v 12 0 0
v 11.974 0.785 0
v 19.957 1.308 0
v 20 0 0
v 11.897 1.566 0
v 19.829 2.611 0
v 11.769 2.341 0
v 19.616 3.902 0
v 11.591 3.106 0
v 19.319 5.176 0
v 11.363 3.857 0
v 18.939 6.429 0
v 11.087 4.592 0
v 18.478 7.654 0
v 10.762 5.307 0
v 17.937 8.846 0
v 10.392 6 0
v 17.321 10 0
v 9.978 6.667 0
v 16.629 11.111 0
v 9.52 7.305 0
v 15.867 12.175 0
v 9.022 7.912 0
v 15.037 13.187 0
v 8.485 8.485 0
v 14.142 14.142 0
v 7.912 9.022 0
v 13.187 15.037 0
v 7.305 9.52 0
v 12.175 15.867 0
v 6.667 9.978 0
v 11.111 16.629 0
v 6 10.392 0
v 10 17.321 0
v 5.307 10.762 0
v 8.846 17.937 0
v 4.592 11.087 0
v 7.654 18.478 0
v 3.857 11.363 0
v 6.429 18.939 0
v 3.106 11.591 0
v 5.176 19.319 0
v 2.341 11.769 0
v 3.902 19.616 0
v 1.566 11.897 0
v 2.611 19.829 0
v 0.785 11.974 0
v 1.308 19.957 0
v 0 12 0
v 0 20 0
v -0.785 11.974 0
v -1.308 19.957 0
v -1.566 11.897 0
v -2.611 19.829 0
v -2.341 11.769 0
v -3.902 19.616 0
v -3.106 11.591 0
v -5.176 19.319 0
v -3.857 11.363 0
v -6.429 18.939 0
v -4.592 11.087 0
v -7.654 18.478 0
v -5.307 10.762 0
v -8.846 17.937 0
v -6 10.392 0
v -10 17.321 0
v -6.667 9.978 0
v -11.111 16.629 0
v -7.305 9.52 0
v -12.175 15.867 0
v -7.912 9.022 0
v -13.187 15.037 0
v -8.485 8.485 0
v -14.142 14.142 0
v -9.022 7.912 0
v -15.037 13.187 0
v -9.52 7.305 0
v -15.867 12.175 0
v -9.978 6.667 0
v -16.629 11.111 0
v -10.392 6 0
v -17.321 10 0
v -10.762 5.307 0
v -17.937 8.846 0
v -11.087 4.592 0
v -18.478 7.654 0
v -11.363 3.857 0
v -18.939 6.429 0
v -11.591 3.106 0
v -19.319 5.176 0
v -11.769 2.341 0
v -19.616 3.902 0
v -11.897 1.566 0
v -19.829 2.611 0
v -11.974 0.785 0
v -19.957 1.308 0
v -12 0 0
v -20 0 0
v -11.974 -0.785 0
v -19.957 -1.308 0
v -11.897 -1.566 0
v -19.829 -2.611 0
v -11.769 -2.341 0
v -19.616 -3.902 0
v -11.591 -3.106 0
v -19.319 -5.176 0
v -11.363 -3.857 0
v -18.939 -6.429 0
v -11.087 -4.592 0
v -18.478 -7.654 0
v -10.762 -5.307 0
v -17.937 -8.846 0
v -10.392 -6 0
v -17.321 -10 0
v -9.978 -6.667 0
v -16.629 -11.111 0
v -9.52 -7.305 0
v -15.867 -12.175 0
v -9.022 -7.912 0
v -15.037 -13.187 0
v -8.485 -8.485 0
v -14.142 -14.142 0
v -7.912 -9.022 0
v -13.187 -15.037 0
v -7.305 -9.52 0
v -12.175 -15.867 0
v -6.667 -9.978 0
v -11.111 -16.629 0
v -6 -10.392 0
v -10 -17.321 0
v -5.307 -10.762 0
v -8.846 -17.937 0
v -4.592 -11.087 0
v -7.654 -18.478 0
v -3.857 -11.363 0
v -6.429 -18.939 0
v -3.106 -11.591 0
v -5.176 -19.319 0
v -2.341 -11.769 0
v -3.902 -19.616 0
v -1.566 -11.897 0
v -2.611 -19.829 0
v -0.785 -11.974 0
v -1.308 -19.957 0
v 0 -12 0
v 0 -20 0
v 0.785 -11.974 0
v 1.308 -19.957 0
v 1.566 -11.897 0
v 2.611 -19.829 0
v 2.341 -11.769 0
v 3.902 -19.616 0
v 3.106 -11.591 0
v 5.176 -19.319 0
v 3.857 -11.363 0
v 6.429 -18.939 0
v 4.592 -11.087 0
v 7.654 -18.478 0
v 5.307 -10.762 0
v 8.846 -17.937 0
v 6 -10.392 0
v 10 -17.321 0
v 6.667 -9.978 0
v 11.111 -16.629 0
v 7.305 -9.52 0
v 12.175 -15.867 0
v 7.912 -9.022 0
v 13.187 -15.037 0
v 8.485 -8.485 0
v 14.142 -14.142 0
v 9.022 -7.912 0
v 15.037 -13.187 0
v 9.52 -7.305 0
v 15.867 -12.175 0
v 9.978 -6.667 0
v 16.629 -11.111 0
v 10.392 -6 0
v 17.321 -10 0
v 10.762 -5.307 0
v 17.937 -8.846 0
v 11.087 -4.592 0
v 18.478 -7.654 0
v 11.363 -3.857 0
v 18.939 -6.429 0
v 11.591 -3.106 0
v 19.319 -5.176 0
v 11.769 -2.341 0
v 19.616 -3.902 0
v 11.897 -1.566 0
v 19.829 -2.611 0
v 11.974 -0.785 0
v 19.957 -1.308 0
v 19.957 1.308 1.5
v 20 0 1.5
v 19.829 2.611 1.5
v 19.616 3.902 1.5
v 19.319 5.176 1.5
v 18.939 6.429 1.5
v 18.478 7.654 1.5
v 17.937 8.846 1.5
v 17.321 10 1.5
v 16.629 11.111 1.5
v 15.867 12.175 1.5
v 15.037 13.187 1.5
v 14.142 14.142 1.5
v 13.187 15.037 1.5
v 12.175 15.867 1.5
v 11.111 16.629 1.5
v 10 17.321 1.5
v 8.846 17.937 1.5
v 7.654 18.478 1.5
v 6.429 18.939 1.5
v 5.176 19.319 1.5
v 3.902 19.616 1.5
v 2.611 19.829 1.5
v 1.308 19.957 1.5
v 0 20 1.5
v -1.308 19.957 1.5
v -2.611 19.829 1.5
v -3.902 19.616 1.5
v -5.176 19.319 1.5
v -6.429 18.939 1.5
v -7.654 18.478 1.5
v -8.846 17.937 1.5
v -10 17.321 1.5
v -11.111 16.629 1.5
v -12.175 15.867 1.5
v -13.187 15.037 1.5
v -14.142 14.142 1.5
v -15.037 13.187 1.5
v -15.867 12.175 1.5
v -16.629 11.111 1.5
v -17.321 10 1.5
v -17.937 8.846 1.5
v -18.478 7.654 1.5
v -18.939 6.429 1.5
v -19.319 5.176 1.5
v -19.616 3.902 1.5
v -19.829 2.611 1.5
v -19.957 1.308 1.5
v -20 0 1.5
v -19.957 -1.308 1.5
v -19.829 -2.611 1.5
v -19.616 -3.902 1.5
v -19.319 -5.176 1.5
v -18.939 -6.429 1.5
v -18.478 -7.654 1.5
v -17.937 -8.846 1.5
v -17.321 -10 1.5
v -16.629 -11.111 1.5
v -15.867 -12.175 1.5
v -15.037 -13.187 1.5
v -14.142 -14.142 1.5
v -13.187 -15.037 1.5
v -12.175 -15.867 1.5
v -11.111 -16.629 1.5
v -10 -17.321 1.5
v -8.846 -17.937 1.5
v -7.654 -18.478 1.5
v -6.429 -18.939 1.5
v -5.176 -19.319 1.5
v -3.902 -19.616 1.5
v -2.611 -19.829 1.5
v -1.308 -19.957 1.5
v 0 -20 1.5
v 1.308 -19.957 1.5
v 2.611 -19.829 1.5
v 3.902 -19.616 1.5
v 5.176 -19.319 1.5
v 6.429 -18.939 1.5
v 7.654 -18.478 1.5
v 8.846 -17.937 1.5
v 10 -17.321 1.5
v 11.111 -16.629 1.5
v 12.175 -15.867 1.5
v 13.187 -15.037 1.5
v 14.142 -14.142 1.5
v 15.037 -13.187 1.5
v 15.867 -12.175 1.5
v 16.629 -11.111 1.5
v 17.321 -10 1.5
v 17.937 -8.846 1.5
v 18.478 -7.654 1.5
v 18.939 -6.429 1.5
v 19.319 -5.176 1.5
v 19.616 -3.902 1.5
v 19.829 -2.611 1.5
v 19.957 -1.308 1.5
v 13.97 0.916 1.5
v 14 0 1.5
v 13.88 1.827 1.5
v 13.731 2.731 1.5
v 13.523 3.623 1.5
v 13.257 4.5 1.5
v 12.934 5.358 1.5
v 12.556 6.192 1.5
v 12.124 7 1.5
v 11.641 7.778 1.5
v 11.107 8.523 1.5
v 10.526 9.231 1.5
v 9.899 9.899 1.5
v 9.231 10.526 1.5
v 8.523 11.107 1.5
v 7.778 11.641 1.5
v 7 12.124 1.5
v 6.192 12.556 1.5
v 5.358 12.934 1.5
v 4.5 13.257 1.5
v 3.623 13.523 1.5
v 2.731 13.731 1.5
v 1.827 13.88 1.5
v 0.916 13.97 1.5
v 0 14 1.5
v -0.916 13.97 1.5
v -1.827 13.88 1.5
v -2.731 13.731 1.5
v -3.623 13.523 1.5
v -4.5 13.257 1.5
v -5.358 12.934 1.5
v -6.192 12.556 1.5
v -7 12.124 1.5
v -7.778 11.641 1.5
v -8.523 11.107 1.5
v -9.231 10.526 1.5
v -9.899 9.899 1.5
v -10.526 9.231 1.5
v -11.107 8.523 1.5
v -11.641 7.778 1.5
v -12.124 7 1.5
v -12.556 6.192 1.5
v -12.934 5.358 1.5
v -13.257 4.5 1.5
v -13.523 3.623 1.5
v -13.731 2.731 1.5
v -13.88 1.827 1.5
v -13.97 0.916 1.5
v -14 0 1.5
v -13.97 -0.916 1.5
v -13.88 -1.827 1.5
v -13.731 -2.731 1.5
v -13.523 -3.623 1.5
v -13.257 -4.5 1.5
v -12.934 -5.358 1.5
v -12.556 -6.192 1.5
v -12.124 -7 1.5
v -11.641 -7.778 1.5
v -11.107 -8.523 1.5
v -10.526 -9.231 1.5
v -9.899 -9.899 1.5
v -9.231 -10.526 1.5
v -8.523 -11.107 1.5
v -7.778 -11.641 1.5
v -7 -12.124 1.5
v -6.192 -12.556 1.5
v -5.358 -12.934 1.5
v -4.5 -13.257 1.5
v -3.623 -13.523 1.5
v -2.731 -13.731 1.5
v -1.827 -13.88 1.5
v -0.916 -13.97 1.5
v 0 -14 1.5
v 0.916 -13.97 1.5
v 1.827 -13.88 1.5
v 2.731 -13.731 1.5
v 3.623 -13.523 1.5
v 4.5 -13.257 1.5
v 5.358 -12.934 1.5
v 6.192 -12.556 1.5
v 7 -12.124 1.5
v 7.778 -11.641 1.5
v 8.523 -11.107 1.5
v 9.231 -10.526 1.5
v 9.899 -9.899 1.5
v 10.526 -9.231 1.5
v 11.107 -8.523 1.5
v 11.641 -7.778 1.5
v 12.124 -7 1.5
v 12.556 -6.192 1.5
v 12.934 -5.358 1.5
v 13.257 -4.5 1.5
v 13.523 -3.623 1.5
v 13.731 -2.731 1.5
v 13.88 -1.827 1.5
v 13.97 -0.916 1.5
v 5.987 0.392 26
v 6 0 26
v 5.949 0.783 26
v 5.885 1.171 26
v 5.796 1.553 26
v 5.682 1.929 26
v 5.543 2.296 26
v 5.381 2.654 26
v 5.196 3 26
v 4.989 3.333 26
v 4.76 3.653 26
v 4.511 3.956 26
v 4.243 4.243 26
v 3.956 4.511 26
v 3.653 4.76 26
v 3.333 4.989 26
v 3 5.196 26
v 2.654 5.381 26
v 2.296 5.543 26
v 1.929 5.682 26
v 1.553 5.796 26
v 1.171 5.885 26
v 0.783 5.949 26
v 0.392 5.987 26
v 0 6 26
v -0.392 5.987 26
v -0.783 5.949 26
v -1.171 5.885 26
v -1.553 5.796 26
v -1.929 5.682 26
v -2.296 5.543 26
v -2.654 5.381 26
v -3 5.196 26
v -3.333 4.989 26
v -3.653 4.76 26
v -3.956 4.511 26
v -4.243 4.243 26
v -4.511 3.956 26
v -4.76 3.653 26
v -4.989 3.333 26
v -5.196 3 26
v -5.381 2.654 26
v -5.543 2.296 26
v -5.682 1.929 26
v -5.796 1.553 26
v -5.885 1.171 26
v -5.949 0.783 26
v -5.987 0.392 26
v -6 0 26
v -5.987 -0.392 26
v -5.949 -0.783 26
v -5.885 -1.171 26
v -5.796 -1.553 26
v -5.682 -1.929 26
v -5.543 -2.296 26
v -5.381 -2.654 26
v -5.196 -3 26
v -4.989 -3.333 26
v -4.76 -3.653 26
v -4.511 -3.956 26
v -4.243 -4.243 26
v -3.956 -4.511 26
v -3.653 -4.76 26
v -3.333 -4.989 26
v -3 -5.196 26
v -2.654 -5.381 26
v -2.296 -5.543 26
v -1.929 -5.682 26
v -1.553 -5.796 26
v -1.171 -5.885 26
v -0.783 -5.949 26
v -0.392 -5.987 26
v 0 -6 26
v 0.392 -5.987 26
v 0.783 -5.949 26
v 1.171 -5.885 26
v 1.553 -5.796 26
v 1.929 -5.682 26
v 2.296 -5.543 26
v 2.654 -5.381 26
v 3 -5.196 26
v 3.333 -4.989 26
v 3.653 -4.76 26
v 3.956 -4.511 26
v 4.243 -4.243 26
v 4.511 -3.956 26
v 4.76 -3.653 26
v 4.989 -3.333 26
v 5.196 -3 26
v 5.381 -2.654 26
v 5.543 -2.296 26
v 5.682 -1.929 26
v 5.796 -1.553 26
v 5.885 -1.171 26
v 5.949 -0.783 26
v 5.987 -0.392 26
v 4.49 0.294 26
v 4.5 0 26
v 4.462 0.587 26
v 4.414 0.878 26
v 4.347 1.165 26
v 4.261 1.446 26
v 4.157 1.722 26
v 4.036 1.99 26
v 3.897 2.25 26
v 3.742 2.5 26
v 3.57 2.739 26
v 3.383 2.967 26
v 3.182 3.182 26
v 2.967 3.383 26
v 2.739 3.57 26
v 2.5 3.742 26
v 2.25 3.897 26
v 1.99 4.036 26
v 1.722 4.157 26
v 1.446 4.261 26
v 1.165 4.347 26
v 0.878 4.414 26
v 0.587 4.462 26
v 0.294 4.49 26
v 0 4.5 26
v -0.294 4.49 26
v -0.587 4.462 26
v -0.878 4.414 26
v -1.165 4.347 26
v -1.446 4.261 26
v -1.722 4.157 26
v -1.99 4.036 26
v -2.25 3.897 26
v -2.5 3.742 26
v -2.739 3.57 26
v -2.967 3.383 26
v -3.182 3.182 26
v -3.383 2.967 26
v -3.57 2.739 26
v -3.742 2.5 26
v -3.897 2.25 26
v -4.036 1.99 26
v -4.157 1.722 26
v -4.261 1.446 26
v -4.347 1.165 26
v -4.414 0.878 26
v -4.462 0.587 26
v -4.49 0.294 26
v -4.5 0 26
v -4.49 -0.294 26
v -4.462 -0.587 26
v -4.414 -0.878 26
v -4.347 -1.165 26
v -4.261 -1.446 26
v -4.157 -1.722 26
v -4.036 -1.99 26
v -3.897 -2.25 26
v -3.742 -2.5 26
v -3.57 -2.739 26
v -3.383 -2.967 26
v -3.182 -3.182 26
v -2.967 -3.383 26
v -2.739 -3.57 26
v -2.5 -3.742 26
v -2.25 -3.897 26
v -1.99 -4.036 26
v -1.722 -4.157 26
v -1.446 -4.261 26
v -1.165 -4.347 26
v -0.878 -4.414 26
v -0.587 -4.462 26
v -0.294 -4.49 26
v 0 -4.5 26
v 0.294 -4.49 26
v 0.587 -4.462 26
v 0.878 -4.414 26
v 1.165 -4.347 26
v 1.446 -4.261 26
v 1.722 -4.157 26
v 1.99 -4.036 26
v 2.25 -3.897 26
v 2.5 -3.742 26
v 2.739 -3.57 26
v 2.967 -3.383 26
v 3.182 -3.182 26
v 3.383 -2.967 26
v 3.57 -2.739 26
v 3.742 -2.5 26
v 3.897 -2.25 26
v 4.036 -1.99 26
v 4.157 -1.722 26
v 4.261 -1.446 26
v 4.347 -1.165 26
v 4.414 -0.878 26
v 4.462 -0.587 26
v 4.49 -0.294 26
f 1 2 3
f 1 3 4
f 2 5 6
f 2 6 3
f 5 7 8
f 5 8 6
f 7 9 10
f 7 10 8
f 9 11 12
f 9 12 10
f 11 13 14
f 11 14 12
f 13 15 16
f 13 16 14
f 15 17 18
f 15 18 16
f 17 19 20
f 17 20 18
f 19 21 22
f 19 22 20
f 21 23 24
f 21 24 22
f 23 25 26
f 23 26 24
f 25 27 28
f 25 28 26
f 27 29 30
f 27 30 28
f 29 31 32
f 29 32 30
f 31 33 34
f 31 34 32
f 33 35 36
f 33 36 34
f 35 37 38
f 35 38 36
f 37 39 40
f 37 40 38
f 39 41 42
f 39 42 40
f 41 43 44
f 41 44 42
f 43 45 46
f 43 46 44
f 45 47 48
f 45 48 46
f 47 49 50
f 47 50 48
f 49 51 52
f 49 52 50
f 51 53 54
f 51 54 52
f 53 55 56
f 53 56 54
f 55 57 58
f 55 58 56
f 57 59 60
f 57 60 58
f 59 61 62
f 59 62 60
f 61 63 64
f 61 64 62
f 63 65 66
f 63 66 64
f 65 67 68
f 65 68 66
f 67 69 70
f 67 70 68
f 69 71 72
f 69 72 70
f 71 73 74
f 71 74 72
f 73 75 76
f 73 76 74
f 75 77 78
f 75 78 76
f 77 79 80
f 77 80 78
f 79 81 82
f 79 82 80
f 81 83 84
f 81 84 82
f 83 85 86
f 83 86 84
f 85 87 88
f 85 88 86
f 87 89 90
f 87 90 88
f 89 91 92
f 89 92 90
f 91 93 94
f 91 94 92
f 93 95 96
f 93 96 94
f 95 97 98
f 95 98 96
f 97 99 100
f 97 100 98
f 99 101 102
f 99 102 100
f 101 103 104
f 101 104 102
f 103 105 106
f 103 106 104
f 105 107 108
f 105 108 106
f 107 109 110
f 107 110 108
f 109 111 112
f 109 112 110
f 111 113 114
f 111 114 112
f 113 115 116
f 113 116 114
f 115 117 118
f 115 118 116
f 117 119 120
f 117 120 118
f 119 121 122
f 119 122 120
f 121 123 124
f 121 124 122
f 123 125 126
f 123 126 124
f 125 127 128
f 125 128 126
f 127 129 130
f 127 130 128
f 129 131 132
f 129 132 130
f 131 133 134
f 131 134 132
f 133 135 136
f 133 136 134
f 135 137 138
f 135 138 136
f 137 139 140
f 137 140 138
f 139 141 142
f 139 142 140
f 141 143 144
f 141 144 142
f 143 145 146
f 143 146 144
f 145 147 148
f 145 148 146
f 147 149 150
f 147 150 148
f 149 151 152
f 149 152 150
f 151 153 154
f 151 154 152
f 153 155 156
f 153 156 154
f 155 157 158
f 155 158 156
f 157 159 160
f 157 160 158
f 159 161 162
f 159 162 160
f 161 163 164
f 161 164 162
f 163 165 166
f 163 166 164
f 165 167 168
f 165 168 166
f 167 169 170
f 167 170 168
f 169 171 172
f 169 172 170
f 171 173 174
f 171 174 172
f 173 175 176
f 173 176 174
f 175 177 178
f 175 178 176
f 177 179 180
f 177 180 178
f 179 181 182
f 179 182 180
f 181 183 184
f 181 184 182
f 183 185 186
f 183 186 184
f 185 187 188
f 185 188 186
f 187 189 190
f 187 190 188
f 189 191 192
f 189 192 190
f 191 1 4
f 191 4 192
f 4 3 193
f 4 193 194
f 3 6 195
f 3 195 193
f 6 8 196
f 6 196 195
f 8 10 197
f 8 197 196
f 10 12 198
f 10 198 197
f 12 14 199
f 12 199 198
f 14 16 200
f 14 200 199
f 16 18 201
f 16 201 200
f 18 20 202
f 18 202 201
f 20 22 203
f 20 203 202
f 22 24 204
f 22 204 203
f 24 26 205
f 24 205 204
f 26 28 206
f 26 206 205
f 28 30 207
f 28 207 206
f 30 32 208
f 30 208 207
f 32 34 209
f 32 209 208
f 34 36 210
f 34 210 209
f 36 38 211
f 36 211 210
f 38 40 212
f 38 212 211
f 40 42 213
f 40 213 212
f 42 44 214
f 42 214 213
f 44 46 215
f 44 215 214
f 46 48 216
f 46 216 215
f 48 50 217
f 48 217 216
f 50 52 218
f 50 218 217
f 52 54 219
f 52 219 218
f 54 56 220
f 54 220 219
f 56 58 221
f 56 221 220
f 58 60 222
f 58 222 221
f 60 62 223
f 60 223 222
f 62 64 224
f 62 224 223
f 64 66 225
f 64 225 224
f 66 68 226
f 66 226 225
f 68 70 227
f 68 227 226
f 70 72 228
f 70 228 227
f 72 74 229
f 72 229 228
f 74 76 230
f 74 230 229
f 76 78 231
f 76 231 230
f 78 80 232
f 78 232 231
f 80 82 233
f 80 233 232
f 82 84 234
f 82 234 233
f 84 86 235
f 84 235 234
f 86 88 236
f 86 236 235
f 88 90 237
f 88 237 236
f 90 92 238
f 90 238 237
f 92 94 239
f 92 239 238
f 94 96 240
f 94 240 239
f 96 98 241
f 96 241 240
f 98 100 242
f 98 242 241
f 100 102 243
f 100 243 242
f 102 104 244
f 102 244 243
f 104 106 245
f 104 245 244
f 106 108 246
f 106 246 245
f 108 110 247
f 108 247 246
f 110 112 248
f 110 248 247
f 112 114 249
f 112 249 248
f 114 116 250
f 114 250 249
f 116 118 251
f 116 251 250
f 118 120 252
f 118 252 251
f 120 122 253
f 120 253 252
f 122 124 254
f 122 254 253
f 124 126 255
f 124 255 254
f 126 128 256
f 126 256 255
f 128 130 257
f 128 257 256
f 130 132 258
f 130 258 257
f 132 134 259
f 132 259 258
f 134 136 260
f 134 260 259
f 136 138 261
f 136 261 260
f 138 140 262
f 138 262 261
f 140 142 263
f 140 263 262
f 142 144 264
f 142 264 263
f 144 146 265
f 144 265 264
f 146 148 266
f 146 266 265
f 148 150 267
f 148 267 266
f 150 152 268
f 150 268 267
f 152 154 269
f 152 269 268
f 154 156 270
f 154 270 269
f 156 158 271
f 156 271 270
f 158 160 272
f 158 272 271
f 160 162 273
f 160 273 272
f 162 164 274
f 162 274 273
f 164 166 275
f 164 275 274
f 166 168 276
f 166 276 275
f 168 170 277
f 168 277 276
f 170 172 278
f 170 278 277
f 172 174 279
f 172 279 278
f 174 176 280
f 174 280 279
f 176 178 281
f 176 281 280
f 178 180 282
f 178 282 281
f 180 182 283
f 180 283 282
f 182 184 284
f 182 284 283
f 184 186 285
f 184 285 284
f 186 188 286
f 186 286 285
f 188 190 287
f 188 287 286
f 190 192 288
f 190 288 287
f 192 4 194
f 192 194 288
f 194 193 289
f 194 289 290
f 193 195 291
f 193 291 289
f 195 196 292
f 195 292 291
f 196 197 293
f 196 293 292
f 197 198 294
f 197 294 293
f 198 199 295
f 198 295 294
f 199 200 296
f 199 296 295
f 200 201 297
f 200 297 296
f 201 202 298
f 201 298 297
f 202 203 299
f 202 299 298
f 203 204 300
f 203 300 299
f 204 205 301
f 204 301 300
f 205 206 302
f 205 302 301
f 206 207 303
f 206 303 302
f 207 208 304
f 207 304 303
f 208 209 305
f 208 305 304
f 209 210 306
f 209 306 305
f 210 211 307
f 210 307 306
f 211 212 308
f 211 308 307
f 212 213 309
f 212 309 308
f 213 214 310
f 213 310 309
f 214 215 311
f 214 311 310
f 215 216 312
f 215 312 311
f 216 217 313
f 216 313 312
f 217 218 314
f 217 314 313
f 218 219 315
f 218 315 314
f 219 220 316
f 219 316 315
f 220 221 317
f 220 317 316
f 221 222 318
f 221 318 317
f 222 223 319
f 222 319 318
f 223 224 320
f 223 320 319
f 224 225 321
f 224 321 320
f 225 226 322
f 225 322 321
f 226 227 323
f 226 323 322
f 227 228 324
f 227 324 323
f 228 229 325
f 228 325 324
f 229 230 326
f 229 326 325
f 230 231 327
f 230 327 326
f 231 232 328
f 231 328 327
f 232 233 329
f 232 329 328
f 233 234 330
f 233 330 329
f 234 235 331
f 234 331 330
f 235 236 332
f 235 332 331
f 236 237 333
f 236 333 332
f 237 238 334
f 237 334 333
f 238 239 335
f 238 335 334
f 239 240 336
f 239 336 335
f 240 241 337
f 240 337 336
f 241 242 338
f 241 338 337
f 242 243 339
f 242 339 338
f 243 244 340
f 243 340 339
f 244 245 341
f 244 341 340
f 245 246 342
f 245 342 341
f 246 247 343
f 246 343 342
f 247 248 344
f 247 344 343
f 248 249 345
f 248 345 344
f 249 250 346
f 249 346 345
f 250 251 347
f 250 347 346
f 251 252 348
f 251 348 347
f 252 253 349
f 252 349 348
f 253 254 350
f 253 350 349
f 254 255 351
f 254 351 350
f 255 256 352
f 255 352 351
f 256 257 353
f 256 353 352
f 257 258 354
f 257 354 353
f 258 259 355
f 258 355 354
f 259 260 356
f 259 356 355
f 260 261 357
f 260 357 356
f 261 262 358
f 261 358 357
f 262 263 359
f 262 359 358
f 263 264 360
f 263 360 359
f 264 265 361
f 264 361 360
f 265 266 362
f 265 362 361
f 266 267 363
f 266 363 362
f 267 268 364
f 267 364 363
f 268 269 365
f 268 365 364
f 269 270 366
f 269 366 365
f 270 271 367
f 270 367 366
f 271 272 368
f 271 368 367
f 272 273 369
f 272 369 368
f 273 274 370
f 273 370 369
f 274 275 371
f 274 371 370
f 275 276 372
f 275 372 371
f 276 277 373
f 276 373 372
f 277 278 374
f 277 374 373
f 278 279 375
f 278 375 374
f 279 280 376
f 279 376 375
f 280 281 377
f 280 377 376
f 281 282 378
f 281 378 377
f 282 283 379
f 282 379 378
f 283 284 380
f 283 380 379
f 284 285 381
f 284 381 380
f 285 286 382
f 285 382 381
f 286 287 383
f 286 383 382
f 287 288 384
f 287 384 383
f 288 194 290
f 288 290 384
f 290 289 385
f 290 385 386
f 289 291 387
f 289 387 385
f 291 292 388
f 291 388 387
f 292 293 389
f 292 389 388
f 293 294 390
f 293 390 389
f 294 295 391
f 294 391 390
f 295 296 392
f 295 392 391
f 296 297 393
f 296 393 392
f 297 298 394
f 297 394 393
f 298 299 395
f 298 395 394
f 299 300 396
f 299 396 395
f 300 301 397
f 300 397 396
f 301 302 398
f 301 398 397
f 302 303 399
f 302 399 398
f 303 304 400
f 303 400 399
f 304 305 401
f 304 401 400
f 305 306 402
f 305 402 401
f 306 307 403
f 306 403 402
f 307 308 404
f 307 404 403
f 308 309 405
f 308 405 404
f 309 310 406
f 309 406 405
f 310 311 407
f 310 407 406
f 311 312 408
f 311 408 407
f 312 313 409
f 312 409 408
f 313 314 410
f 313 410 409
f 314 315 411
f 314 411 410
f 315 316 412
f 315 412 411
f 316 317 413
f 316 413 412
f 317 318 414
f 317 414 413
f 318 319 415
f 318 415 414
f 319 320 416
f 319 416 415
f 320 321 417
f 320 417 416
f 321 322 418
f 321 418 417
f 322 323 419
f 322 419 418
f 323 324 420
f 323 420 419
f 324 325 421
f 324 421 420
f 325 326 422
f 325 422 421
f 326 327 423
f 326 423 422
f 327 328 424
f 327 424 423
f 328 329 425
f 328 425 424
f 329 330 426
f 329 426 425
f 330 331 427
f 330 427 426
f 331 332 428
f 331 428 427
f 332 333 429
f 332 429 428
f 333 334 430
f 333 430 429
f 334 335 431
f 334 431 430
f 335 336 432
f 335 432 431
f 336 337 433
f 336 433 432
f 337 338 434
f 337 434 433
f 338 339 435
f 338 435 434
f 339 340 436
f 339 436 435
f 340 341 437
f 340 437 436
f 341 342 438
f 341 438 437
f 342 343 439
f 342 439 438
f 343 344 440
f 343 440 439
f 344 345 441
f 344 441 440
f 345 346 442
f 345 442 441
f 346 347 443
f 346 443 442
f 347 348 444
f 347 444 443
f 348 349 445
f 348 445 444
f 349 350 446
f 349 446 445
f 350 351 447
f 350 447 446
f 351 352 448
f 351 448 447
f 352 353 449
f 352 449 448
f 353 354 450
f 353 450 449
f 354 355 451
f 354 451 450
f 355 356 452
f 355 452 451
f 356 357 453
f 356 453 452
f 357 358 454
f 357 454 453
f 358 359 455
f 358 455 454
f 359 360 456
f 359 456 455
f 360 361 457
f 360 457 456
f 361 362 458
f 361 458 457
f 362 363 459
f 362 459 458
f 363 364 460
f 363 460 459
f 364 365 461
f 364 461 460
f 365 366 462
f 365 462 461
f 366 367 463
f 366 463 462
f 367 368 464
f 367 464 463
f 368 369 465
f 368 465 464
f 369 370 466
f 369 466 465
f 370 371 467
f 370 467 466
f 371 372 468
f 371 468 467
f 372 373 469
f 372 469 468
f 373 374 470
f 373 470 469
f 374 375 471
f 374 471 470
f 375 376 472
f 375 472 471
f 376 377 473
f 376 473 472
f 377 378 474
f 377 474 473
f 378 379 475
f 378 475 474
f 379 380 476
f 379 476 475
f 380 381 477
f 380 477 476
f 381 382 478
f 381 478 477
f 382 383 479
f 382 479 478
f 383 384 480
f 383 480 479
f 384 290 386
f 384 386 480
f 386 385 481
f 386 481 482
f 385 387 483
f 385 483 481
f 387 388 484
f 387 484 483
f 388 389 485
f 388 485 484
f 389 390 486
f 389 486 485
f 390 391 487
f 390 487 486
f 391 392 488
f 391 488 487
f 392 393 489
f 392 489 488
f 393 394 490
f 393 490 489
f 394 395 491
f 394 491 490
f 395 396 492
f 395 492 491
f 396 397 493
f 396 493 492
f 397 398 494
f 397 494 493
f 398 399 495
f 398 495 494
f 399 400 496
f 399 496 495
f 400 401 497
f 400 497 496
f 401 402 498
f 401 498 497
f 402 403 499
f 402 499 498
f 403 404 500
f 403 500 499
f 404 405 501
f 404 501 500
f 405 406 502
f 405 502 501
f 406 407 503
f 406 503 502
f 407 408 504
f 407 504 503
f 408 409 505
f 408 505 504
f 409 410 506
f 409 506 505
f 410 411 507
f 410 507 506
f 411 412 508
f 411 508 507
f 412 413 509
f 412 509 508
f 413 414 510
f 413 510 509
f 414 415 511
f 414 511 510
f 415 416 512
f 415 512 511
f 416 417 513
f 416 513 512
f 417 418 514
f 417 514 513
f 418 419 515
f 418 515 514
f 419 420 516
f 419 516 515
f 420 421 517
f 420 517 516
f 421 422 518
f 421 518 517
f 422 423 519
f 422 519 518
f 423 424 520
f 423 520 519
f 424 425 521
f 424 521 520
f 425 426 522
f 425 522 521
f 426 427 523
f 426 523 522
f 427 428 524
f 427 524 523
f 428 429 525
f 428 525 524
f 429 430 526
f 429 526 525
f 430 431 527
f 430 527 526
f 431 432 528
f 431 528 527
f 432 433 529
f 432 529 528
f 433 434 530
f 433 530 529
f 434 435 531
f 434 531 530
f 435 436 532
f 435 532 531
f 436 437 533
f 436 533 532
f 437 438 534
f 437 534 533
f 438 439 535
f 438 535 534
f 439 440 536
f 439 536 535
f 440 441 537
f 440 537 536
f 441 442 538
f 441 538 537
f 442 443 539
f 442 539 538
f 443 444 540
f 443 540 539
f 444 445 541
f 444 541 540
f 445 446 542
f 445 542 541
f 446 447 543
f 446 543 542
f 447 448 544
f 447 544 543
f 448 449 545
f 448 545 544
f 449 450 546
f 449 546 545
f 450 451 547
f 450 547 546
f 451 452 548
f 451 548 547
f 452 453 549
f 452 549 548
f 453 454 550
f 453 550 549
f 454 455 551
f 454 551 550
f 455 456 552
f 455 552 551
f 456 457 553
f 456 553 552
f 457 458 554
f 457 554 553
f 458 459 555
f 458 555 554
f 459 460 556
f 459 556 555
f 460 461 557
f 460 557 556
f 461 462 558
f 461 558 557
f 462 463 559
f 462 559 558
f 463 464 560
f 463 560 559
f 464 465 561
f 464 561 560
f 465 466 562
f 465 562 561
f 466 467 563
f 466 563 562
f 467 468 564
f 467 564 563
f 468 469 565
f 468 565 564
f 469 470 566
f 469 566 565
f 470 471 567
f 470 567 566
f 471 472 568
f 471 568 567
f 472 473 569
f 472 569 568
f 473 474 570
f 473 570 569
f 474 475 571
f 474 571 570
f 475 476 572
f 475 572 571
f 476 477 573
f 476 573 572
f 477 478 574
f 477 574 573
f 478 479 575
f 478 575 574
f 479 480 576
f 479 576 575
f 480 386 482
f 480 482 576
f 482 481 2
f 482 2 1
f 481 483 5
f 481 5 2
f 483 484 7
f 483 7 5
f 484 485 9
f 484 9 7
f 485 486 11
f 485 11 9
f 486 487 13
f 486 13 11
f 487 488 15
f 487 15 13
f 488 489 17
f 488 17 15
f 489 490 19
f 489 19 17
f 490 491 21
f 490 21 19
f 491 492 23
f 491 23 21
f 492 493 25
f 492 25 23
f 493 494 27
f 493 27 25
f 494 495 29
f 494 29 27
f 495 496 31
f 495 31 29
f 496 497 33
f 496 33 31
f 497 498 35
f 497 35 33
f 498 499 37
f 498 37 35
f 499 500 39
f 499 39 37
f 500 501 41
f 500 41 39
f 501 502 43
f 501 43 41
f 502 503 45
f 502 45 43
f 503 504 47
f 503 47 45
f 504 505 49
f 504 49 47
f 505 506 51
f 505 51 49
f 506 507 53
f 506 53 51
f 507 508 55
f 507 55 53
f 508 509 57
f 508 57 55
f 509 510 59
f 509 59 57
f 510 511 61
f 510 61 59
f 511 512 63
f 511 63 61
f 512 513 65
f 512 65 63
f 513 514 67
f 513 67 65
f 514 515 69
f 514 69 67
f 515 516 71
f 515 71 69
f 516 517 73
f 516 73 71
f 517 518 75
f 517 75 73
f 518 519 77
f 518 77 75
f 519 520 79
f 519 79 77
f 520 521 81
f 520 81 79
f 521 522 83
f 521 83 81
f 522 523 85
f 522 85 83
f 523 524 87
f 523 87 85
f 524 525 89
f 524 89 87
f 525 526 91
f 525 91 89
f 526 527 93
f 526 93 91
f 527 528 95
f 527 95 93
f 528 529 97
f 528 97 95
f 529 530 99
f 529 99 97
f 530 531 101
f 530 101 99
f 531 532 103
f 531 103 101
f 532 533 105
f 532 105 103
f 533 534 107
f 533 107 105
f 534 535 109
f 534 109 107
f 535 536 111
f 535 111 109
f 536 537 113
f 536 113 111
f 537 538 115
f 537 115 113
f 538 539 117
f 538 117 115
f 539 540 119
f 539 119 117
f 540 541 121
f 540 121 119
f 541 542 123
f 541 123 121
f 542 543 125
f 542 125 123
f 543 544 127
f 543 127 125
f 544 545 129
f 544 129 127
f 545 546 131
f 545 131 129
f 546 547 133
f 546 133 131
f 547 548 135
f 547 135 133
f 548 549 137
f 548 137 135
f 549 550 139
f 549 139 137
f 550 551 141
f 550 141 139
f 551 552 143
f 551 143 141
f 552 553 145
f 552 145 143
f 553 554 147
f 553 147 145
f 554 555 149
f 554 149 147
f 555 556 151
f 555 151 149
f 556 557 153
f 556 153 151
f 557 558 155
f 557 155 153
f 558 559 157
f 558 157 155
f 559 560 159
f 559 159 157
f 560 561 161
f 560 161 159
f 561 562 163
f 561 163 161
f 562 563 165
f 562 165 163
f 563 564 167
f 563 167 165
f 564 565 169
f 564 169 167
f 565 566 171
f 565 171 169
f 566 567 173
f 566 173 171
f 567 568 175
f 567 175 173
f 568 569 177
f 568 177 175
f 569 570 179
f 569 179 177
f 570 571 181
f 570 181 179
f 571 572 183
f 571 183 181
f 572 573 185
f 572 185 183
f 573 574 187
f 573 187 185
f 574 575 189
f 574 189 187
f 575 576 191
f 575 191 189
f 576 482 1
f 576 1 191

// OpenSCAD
// Original MechIntel educational model. CC0-1.0. Units: mm.
// Not a standardized or load-rated component.
$fn=96;
// Section points: [radius, height], mm. Edit to change the profile.
section=[[12, 0], [20, 0], [20, 1.5], [14, 1.5], [6, 26], [4.5, 26]];
rotate_extrude($fn=96) polygon(points=section);
